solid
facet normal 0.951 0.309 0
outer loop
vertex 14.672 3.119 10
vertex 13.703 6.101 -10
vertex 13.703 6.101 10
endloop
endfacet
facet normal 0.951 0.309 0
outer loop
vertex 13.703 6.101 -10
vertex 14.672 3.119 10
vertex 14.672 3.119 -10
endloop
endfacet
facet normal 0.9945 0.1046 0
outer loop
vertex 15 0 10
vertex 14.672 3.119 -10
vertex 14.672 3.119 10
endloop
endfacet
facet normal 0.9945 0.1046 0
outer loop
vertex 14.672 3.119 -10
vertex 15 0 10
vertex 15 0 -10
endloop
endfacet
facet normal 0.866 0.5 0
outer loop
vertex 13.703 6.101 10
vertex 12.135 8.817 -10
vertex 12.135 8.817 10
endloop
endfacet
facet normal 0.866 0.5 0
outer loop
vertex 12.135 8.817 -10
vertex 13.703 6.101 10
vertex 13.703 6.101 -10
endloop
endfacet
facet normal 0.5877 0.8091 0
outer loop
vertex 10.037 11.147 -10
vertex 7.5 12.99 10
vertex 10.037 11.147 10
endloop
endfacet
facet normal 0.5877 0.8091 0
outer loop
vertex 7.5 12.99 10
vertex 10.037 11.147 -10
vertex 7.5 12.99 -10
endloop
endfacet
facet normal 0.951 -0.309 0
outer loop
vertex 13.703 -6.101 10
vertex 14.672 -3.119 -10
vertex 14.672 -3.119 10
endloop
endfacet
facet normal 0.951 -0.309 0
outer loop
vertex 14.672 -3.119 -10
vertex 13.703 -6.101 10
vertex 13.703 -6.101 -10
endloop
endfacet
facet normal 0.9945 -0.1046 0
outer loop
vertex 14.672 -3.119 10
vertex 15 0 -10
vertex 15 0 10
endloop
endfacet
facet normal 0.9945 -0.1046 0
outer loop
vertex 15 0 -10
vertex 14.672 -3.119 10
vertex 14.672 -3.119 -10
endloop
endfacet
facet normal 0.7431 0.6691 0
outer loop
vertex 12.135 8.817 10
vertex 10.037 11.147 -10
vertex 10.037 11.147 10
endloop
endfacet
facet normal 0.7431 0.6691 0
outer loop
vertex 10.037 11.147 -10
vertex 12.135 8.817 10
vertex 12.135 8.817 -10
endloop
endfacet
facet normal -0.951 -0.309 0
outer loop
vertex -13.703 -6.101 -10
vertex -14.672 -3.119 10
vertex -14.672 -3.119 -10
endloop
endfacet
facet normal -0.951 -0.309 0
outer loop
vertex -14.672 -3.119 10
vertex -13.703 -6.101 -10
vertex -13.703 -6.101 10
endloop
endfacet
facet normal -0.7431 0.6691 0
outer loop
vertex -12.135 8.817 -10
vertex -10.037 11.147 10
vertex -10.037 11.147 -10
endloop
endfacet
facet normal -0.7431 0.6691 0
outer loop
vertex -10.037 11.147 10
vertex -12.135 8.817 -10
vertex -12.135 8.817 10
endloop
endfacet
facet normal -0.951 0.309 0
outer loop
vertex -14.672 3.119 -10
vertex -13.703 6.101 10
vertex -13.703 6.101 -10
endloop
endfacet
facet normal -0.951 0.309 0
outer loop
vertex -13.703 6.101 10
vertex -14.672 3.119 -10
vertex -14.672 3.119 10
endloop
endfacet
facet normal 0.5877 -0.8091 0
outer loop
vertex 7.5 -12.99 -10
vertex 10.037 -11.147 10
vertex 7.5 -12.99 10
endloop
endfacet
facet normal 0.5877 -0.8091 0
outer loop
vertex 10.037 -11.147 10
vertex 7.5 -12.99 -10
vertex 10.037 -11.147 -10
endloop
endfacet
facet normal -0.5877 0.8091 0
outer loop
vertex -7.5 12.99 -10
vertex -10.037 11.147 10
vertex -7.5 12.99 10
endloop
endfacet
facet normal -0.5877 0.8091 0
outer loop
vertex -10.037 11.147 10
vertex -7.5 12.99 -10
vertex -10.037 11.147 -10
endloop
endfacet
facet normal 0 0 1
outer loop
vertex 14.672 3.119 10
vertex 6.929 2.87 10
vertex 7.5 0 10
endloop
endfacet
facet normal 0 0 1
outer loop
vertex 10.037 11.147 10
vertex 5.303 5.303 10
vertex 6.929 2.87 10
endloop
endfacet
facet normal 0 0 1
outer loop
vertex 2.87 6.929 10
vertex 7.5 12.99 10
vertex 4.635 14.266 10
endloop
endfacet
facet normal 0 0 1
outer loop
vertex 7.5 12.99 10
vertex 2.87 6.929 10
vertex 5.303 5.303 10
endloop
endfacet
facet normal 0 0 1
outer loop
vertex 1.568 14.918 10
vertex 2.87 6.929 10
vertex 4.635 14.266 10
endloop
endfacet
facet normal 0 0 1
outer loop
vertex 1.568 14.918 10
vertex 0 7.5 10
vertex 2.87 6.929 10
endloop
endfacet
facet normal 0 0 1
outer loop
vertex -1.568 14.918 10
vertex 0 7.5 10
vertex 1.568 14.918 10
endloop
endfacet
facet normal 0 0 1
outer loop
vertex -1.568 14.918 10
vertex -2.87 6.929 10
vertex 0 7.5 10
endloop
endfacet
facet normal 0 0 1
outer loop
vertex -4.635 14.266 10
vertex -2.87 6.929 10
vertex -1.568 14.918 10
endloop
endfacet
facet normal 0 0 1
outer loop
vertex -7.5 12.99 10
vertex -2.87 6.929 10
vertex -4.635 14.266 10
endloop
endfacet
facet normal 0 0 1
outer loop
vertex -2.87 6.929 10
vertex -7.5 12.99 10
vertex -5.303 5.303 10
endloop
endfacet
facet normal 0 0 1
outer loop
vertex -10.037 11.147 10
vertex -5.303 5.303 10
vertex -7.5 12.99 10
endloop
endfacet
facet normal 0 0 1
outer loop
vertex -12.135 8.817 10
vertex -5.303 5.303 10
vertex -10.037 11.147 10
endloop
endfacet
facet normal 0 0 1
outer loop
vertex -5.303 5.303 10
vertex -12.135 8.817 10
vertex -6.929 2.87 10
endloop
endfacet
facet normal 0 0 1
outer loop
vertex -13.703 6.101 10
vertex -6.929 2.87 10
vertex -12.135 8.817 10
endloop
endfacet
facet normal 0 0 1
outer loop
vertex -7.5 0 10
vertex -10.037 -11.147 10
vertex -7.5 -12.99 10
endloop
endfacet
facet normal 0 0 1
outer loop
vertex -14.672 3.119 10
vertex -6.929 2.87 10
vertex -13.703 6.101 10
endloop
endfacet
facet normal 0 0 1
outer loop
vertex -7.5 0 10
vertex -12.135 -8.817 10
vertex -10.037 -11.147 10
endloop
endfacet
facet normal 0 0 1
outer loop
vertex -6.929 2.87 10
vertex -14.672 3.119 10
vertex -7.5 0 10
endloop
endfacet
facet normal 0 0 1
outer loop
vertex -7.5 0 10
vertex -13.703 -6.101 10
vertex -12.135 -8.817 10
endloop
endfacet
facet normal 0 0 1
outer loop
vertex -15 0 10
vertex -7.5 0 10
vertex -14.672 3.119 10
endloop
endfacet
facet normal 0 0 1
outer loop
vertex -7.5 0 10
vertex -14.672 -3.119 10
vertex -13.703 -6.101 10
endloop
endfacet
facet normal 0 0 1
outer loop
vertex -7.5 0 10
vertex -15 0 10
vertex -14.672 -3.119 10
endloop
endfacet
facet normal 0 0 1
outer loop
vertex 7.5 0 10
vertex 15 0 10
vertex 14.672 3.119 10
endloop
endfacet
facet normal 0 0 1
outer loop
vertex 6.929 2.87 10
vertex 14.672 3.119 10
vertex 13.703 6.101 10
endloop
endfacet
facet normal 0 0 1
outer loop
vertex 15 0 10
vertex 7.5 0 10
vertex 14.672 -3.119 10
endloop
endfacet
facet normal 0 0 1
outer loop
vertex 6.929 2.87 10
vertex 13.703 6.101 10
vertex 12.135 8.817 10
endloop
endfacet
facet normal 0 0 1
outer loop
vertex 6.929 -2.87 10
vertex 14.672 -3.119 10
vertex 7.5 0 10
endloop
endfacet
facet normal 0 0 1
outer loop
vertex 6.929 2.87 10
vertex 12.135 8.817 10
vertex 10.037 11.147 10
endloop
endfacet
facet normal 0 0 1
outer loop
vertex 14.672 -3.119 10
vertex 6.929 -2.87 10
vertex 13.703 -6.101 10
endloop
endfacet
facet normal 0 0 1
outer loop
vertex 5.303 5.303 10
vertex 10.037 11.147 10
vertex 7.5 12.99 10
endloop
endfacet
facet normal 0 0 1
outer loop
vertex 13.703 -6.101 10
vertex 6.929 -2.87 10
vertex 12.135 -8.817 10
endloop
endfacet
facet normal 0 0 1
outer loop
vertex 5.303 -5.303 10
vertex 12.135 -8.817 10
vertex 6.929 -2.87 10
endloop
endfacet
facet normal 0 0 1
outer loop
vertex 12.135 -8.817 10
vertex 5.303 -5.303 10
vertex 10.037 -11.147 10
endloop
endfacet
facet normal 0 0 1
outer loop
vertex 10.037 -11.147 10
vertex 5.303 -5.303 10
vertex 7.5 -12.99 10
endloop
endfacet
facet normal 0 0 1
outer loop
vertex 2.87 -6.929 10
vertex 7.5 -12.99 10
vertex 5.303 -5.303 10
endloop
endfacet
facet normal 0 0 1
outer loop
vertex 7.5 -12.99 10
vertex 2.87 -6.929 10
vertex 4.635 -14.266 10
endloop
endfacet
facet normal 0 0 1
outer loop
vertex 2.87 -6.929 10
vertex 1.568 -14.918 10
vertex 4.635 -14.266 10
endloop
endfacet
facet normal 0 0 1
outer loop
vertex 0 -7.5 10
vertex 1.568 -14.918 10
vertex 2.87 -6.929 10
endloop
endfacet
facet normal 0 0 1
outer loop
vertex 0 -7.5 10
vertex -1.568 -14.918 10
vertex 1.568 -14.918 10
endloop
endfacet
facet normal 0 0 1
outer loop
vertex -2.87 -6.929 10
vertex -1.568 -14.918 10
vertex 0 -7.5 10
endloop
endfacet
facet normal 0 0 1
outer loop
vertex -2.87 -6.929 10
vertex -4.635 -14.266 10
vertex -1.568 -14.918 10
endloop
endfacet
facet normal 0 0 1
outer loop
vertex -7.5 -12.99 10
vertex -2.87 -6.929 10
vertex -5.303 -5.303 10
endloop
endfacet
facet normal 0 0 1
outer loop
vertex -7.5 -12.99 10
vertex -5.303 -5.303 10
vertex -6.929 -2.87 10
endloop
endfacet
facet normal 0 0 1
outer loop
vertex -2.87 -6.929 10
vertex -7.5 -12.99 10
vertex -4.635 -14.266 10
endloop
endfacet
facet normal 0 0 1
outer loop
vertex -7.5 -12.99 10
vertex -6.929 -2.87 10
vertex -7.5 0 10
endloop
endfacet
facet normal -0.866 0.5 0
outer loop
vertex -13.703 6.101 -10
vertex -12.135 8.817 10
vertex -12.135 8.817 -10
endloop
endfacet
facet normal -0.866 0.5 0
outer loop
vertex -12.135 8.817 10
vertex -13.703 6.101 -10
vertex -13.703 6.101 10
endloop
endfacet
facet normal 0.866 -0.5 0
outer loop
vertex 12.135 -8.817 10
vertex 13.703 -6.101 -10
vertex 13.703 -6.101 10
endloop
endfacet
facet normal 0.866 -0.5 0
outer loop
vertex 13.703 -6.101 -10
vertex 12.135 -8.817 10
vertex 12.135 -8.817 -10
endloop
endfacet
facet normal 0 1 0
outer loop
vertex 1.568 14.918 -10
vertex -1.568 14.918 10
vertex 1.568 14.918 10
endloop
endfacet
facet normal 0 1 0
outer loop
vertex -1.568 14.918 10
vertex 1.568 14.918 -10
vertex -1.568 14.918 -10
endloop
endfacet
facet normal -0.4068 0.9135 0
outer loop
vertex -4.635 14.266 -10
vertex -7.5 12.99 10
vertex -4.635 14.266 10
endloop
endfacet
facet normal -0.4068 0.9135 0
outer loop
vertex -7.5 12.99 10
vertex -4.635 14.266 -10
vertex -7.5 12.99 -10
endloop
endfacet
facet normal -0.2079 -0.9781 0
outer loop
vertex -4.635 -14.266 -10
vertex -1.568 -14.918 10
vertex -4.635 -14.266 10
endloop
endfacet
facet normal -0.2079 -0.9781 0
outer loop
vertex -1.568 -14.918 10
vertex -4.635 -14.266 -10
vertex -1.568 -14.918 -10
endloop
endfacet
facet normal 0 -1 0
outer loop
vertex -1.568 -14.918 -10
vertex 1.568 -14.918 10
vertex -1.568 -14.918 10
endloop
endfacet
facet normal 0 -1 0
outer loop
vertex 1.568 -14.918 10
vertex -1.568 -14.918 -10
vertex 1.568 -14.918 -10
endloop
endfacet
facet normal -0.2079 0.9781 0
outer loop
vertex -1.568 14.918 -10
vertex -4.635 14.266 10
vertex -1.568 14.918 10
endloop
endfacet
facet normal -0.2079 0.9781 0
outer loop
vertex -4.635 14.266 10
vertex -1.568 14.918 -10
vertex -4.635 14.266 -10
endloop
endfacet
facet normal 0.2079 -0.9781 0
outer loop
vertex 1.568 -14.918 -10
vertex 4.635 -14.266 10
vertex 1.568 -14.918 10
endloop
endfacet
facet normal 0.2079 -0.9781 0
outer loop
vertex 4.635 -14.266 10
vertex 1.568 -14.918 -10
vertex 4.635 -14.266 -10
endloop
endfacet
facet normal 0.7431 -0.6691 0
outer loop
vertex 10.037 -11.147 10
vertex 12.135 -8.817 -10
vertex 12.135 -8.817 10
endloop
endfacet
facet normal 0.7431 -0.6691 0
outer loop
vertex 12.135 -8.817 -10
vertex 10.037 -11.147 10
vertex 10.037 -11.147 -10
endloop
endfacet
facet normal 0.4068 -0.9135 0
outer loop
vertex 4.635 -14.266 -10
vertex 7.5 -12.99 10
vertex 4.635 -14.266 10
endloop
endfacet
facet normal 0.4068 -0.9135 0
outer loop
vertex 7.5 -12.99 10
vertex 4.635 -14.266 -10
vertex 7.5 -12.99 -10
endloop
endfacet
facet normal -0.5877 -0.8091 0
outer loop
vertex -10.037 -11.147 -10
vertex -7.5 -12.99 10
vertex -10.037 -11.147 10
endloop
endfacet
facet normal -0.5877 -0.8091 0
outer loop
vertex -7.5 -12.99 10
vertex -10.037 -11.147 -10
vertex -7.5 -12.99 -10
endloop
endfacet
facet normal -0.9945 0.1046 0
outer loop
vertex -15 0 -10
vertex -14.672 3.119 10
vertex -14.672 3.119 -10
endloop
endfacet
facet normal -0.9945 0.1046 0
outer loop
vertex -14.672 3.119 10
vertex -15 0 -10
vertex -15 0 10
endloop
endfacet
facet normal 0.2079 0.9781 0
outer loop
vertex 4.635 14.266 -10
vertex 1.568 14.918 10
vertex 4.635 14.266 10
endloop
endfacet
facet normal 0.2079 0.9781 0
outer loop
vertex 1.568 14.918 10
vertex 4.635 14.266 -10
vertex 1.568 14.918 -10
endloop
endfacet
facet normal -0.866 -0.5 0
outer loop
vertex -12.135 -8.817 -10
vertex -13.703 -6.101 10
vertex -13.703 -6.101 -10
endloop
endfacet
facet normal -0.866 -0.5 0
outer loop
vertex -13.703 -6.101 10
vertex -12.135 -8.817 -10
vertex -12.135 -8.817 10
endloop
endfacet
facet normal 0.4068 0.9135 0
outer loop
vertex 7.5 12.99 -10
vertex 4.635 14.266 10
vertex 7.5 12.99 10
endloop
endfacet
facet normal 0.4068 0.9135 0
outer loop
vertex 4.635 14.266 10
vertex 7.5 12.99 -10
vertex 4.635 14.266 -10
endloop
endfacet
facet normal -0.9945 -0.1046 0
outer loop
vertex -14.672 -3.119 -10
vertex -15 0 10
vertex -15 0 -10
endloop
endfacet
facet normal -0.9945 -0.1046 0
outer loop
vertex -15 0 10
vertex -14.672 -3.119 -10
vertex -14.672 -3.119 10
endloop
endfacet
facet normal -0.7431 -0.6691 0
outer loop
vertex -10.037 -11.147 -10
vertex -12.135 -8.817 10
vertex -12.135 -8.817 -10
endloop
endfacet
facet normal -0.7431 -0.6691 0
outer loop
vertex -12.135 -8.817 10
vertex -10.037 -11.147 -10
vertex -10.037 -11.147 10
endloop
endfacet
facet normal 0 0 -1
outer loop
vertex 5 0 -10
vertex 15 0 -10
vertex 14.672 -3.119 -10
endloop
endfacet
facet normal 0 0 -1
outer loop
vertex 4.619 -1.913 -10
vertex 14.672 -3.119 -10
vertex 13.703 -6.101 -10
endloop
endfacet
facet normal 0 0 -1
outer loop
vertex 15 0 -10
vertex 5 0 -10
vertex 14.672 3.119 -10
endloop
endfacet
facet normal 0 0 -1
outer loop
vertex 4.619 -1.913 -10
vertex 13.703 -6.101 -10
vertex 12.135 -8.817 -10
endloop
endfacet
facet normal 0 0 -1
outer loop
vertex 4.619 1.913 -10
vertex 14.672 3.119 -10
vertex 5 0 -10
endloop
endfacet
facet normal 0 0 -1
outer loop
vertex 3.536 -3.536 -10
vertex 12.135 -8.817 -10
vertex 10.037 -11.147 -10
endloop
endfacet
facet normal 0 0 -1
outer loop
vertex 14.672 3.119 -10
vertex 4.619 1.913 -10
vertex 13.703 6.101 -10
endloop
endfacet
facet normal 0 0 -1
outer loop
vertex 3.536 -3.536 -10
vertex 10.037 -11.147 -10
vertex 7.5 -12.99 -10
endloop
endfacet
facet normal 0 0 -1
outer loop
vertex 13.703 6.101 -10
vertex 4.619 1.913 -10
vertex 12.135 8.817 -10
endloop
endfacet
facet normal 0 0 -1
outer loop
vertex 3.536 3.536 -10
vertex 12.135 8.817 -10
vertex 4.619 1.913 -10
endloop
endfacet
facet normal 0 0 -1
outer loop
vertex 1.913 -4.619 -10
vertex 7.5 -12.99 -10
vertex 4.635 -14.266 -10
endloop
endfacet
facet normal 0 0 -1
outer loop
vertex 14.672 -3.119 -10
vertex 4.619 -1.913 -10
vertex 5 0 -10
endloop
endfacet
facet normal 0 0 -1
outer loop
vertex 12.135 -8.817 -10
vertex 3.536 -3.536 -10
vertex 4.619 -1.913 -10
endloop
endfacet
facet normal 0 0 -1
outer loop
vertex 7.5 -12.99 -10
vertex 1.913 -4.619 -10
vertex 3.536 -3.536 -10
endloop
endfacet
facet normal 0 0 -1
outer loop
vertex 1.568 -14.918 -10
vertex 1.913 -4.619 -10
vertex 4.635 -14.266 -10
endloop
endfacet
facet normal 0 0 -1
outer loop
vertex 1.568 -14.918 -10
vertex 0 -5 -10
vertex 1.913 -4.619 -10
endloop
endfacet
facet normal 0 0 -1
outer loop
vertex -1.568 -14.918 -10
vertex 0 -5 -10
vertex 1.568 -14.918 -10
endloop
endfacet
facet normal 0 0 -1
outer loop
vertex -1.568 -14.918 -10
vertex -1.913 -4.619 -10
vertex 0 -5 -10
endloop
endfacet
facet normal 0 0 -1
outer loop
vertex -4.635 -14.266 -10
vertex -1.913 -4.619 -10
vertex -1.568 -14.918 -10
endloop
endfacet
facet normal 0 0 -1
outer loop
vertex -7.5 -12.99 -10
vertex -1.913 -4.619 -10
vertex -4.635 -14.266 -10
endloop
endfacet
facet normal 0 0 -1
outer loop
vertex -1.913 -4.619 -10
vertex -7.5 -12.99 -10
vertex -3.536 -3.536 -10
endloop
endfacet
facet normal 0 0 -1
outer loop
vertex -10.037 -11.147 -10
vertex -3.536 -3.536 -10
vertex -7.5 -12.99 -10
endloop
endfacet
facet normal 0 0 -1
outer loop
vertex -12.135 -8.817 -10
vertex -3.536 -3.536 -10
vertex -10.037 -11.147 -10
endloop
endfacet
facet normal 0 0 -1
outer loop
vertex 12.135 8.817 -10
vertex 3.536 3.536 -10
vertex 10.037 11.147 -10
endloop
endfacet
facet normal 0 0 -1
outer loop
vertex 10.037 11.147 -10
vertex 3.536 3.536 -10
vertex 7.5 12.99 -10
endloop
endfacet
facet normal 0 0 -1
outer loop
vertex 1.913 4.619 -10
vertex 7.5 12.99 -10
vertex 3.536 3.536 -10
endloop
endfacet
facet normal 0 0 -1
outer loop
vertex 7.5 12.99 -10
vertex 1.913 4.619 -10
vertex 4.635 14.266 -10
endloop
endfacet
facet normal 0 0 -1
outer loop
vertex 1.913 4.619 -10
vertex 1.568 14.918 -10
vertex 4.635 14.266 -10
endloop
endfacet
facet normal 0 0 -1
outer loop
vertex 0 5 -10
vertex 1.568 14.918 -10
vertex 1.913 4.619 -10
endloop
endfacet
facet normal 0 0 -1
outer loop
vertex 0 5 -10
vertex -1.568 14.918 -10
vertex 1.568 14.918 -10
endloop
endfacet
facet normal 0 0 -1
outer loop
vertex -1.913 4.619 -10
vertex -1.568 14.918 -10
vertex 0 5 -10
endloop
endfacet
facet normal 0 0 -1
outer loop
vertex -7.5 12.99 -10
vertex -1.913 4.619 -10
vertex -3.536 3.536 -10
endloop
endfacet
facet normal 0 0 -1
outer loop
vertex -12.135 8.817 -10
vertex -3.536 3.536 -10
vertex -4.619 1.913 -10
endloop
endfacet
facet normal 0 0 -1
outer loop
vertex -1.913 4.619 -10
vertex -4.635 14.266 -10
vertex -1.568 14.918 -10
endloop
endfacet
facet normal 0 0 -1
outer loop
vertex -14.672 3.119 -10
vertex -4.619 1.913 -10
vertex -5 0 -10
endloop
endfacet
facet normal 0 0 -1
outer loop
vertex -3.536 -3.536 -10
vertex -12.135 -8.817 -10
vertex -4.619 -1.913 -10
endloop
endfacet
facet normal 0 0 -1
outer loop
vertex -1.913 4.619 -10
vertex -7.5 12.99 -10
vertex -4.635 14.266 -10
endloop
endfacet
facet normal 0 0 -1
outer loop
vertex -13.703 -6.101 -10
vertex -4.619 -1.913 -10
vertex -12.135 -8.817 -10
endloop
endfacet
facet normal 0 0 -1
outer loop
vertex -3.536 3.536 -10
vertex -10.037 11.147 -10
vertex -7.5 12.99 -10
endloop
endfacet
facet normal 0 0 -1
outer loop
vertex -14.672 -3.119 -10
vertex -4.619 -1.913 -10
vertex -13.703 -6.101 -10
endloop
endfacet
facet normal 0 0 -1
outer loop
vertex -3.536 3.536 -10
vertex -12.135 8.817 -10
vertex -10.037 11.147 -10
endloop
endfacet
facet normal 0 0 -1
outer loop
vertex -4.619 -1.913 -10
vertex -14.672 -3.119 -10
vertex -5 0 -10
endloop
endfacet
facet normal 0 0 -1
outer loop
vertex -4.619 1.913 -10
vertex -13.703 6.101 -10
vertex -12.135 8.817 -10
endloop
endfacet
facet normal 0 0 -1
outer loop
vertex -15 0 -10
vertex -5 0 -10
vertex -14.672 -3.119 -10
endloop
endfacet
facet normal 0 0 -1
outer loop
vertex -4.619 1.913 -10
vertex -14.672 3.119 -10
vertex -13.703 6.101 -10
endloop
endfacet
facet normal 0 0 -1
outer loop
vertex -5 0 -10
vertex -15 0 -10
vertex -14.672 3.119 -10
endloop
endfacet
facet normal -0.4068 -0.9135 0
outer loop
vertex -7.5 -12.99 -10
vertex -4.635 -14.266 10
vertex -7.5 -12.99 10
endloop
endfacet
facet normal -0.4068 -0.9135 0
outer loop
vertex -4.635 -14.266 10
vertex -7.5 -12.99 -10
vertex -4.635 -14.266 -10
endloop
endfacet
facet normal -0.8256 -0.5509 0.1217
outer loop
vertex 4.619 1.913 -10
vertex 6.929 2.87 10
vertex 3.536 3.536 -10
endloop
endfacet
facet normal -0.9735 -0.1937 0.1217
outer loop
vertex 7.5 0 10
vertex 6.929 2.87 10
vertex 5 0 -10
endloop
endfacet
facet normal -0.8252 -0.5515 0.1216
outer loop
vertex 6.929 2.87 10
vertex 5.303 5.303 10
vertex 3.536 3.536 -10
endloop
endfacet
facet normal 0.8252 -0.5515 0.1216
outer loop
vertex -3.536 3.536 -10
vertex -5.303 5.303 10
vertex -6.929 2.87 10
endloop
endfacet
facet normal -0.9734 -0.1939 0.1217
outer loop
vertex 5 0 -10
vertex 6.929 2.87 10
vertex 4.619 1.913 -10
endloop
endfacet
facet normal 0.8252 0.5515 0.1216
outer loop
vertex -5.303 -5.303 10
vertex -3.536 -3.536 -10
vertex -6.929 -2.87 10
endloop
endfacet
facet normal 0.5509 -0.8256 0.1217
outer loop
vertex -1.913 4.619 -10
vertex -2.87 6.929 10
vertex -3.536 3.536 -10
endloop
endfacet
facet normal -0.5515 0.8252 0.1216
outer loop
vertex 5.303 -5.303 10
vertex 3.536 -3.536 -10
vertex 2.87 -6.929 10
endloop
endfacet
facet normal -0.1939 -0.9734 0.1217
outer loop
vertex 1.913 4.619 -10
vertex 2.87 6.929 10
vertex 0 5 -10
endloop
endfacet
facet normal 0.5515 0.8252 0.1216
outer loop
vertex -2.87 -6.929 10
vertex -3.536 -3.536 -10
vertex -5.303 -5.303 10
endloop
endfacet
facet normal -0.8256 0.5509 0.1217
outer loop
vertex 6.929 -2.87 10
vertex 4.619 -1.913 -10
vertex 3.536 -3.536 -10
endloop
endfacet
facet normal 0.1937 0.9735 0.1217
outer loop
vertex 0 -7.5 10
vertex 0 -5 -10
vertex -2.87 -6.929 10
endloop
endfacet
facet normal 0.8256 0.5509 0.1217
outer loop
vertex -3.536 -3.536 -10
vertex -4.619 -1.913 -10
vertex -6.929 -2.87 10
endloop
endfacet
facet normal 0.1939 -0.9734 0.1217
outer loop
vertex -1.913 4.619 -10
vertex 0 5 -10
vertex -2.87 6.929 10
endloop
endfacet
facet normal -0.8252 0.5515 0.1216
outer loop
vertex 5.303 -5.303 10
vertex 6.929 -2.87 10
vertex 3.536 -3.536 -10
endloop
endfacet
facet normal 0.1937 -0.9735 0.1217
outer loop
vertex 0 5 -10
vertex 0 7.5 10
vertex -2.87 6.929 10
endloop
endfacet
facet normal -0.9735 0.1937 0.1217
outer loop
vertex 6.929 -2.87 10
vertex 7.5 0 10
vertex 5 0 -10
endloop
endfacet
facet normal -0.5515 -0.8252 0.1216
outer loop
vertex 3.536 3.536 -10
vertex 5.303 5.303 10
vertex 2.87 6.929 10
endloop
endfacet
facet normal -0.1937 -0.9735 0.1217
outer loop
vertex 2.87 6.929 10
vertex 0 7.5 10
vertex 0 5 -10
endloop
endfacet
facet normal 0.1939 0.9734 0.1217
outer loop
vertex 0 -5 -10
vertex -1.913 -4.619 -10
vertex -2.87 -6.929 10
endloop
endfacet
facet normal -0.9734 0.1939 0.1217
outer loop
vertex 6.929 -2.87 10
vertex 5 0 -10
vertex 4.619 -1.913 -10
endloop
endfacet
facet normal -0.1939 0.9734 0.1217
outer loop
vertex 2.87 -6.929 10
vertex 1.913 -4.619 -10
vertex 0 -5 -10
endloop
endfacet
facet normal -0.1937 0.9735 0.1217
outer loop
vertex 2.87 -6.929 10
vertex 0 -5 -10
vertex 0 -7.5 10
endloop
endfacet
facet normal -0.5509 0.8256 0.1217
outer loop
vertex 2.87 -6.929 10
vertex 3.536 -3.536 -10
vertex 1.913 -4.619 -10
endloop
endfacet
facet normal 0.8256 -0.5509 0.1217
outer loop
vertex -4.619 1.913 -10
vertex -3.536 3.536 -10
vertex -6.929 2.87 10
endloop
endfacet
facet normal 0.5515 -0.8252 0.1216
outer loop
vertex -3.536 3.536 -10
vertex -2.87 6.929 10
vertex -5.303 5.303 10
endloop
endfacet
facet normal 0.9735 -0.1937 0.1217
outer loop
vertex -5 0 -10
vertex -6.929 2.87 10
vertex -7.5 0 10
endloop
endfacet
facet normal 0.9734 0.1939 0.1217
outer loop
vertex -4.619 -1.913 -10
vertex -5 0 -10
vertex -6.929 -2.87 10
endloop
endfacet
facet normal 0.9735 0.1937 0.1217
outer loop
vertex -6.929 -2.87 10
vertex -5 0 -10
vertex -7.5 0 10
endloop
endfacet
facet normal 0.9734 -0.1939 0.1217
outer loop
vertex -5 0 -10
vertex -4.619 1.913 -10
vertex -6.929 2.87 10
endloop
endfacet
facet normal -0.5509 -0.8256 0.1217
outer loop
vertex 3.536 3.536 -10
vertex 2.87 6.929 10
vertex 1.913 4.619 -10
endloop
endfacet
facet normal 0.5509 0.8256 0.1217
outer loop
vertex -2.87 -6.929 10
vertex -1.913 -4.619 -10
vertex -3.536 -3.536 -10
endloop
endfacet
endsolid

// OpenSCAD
// Parameters
outer_diameter = 30;  // Outer diameter of the hub
height = 20;          // Height of the hub
inner_diameter_top = 10;  // Inner hole diameter at the top
inner_diameter_bottom = 15; // Inner hole diameter at the bottom

// Module to create the cylindrical hub with a conical hole
module cylindrical_hub() {
    difference() {
        // Main cylindrical body
        cylinder(h=height, d=outer_diameter, center=true);
        
        // Conical inner hole
        translate([0, 0, -height/2])
        linear_extrude(height=height, scale=inner_diameter_bottom/inner_diameter_top)
        circle(d=inner_diameter_top);
    }
}

// Render the cylindrical hub
cylindrical_hub();
